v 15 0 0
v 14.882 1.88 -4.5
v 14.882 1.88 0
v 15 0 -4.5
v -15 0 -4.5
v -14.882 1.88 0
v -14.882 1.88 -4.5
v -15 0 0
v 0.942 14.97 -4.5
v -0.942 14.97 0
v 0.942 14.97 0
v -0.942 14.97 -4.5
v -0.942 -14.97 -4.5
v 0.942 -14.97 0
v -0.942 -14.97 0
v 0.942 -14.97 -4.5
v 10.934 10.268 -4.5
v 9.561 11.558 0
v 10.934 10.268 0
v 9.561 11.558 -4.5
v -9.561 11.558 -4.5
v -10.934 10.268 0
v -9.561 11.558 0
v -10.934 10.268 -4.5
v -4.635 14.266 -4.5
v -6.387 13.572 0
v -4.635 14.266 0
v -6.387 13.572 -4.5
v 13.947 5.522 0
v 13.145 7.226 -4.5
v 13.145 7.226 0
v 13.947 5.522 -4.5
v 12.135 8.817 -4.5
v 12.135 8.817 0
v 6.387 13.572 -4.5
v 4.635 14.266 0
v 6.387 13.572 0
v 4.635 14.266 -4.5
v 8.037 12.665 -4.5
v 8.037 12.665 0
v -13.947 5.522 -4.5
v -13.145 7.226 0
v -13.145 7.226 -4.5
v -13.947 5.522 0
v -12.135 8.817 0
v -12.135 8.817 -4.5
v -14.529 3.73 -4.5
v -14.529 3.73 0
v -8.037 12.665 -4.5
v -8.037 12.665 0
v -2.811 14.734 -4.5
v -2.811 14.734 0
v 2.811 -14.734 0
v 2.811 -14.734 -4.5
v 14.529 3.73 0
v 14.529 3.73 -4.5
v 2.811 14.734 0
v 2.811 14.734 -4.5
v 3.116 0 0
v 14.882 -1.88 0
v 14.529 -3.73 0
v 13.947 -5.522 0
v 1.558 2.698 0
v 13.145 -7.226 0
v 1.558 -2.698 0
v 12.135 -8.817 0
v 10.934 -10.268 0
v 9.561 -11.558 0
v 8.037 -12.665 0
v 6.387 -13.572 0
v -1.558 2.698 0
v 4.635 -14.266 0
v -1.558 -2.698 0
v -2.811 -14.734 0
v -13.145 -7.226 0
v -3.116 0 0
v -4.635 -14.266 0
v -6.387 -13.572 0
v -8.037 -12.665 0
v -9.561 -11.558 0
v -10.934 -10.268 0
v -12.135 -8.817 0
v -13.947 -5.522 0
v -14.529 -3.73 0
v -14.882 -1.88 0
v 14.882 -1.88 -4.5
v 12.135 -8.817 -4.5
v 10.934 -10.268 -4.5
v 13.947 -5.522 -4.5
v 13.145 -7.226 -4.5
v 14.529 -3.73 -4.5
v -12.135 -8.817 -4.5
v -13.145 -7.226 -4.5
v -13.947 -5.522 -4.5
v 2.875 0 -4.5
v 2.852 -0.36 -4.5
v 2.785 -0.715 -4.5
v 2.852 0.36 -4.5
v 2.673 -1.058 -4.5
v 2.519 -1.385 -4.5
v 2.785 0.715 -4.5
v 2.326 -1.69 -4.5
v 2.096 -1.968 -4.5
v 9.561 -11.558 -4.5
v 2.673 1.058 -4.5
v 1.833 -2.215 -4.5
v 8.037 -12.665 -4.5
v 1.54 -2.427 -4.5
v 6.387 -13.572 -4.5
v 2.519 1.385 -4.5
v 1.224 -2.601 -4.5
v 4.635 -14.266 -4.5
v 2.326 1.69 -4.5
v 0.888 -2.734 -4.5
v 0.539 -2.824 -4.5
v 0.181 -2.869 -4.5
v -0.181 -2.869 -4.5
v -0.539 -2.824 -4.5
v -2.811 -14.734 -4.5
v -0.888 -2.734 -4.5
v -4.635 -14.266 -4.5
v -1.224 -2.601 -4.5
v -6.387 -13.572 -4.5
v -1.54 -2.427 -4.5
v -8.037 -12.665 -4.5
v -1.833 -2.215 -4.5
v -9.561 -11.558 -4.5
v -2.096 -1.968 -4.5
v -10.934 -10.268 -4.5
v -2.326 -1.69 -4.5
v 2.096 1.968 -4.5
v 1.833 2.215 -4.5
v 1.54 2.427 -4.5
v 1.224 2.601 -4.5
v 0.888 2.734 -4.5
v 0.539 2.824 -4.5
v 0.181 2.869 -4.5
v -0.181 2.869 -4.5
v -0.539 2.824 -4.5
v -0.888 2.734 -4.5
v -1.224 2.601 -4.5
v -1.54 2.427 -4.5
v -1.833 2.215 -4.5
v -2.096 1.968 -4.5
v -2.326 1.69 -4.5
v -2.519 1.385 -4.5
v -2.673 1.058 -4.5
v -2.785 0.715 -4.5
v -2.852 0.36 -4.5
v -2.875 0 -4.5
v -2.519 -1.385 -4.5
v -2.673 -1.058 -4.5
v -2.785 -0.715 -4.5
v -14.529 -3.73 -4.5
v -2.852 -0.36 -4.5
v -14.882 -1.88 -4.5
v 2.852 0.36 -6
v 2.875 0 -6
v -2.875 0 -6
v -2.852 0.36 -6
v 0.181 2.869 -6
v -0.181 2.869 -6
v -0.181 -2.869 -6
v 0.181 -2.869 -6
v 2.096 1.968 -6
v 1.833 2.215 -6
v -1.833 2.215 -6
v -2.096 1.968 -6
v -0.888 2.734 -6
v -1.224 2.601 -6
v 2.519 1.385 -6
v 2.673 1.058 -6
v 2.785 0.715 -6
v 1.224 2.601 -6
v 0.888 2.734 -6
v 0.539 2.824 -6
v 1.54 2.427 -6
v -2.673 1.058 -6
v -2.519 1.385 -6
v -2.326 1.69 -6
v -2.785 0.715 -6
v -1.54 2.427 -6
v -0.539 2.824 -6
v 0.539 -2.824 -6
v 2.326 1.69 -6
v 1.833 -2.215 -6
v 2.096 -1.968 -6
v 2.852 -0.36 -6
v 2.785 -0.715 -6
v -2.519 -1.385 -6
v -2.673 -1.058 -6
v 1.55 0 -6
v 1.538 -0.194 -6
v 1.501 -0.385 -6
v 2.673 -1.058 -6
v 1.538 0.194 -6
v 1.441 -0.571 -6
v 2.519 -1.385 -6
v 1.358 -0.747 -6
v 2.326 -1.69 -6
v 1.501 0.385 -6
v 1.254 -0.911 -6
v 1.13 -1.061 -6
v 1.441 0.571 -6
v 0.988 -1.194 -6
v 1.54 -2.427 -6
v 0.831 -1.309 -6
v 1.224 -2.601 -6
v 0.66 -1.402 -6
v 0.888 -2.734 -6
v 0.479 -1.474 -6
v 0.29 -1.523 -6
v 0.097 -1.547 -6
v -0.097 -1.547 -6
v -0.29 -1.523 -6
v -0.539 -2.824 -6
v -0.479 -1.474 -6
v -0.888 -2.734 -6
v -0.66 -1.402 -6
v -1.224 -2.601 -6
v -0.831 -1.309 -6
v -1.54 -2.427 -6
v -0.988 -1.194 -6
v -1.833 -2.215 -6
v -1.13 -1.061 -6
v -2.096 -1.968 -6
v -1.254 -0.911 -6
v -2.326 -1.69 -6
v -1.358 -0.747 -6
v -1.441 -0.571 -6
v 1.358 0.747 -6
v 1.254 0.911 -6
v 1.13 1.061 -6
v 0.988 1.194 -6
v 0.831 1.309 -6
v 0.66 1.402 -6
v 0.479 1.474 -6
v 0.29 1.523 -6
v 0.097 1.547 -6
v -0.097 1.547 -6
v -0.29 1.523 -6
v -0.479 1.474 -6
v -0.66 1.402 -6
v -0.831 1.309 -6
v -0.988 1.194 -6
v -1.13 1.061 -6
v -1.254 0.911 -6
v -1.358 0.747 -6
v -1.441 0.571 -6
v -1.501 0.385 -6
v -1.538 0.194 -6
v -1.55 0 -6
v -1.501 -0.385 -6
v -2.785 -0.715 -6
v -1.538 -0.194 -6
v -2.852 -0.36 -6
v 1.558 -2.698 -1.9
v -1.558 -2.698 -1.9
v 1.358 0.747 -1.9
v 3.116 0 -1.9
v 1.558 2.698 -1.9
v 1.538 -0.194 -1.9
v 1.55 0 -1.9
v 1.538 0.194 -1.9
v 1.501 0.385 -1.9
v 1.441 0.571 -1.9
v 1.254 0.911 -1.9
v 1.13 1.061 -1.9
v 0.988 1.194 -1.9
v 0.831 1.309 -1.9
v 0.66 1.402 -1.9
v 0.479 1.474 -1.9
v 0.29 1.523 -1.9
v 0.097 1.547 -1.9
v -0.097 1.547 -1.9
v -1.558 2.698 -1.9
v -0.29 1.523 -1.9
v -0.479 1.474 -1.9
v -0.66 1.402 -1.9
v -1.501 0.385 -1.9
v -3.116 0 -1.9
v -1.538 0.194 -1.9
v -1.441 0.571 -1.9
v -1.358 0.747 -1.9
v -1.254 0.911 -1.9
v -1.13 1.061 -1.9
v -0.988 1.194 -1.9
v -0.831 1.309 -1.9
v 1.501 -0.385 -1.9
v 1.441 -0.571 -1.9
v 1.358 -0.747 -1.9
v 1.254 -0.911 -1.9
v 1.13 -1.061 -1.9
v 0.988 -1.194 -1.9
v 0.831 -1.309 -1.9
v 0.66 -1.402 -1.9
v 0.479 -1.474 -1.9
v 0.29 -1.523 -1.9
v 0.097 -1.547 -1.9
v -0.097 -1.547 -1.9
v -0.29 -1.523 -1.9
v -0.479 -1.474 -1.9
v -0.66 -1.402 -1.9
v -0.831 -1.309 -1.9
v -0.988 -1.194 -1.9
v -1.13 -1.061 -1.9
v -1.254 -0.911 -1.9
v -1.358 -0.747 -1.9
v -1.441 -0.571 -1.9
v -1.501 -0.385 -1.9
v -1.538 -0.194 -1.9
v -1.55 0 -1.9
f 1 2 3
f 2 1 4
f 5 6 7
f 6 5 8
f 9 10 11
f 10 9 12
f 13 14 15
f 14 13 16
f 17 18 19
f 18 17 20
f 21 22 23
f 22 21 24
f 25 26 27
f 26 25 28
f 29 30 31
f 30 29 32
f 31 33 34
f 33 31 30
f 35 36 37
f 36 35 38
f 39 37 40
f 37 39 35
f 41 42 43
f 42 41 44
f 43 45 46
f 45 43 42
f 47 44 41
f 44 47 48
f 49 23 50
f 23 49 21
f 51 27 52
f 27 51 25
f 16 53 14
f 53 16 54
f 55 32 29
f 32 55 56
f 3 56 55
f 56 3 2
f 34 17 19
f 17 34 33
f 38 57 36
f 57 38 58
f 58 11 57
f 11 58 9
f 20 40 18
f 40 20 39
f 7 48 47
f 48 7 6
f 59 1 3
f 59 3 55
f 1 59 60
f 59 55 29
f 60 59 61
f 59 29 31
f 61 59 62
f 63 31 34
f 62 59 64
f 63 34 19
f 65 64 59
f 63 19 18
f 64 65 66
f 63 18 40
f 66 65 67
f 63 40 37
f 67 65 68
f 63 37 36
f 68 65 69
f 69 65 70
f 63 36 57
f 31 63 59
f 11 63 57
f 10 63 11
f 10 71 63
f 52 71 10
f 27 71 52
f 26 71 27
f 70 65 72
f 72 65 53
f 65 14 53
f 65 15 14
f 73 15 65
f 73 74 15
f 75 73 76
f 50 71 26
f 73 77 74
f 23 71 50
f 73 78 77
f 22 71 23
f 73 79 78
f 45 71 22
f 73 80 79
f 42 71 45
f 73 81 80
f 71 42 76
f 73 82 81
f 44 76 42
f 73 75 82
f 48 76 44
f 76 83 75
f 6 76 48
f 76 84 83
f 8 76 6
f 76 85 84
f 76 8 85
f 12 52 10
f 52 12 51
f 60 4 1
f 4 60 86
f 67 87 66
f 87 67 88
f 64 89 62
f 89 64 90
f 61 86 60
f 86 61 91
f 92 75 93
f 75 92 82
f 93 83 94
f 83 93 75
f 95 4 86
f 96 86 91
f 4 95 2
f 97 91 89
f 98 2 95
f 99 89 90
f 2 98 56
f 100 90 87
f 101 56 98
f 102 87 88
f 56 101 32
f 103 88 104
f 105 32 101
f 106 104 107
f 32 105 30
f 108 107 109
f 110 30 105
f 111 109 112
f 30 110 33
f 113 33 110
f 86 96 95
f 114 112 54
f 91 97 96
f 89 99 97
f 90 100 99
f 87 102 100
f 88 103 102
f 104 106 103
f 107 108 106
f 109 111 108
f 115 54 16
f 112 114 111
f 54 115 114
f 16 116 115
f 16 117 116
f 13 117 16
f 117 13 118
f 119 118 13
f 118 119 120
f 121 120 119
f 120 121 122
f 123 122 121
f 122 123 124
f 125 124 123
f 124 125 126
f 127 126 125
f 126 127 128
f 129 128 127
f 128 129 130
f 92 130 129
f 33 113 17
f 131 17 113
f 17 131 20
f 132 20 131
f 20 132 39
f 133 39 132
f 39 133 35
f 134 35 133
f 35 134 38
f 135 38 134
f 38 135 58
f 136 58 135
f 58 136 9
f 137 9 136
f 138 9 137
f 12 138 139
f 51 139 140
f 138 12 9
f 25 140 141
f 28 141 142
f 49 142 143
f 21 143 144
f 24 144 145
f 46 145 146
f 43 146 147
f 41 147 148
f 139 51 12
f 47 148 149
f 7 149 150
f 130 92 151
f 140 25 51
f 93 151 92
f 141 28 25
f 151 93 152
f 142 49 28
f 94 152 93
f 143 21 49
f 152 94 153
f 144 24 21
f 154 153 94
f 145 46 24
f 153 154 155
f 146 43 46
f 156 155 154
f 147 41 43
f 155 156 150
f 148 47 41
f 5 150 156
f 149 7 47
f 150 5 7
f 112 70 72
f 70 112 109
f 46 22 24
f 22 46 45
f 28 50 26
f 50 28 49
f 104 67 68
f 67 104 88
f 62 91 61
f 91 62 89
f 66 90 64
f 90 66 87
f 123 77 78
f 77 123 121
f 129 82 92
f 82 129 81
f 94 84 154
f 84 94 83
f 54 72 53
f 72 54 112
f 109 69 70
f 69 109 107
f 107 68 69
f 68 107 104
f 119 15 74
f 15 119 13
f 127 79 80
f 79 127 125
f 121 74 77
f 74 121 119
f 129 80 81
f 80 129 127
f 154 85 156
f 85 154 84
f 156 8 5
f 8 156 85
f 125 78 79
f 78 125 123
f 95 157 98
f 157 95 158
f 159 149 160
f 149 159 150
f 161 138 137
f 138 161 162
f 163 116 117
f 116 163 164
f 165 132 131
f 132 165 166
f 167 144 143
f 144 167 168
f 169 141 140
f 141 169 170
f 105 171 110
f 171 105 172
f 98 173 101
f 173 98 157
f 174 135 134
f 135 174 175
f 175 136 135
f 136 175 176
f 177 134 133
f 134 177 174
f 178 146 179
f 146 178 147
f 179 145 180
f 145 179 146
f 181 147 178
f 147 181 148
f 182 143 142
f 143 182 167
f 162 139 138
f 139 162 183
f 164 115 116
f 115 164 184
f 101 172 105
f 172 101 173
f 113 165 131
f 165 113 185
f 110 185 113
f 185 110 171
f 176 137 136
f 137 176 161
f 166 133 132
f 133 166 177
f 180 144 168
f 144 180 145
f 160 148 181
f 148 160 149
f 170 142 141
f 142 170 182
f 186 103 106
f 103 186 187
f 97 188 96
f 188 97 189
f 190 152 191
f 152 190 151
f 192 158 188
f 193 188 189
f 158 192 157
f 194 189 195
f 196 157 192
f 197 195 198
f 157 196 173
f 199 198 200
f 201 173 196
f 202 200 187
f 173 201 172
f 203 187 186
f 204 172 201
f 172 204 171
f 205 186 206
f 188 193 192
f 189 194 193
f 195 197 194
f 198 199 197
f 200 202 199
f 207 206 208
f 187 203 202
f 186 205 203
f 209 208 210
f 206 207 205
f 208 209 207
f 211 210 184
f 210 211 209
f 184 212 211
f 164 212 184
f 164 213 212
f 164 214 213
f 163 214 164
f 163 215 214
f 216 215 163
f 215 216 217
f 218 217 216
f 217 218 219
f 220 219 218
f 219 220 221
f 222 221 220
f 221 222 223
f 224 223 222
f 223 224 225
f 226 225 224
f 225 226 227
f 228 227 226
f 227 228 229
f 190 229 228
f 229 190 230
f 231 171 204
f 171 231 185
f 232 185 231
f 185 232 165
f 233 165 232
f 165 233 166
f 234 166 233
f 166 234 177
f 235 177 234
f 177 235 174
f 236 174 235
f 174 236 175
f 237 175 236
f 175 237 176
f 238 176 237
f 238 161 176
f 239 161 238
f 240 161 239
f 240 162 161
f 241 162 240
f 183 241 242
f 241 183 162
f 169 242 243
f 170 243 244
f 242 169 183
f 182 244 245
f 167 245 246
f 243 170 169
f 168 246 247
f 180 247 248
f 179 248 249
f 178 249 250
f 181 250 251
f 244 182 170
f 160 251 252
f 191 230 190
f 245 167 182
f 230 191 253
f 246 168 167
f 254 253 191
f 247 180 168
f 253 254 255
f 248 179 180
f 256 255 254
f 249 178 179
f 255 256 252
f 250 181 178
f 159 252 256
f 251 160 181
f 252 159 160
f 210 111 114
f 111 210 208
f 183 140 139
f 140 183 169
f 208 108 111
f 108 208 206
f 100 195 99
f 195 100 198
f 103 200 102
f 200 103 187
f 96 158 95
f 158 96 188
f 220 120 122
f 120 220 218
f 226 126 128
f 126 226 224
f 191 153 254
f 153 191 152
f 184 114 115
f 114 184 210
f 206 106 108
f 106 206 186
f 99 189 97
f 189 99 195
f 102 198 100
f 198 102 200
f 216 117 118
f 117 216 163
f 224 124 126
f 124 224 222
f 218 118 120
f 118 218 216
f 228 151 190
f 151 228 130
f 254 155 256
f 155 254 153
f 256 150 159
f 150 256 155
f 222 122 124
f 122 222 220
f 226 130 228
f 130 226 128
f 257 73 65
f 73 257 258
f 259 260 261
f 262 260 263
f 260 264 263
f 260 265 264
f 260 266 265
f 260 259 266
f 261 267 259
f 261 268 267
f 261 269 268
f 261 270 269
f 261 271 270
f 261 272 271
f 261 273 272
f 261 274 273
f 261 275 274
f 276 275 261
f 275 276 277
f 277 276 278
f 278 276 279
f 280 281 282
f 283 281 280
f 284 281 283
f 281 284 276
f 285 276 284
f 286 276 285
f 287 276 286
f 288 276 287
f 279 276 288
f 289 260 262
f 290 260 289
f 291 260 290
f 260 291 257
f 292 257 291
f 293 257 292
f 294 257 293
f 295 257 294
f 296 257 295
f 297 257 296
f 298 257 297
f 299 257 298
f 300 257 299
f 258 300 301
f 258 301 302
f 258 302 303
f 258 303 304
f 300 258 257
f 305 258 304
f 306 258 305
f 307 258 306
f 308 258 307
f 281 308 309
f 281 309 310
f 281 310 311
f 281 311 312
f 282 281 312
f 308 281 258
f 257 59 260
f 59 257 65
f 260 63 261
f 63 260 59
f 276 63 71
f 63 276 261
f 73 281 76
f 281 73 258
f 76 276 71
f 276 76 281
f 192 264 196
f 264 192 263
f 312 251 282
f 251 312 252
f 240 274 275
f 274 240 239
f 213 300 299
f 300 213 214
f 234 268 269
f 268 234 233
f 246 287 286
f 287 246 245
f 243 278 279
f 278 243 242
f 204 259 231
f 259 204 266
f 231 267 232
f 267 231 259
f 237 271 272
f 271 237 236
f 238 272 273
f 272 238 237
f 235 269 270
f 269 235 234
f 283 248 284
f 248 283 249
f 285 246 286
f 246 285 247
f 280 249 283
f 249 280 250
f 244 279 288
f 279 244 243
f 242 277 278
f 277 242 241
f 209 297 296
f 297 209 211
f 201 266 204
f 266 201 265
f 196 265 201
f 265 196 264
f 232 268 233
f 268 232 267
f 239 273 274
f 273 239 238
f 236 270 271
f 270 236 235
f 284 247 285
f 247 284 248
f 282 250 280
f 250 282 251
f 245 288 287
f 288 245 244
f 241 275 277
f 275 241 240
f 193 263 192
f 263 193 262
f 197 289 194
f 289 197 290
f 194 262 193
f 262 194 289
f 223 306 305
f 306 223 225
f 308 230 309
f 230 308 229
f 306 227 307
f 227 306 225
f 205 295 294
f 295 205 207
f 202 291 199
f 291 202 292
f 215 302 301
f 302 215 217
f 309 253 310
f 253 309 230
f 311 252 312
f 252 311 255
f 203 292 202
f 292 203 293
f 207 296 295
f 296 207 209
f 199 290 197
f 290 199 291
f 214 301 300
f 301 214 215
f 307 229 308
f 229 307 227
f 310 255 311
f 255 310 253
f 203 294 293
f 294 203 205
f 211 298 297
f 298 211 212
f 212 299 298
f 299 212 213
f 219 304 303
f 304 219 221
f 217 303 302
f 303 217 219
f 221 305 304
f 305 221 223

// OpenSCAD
$fn = 50;


difference() {
	union() {
		translate(v = [0, 0, -4.5000000000]) {
			cylinder(h = 4.5000000000, r = 15.0000000000);
		}
		translate(v = [0, 0, -6.0000000000]) {
			cylinder(h = 6, r = 2.8750000000);
		}
	}
	union() {
		translate(v = [0, 0, 0]) {
			rotate(a = [0, 0, 0]) {
				difference() {
					union() {
						translate(v = [0, 0, -1.9000000000]) {
							linear_extrude(height = 1.9000000000) {
								polygon(points = [[3.1158000000, 0.0000000000], [1.5579000000, 2.6983619531], [-1.5579000000, 2.6983619531], [-3.1158000000, 0.0000000000], [-1.5579000000, -2.6983619531], [1.5579000000, -2.6983619531]]);
							}
						}
					}
					union();
				}
			}
		}
		#translate(v = [0, 0, -100.0000000000]) {
			cylinder(h = 200, r = 1.5500000000);
		}
	}
}
